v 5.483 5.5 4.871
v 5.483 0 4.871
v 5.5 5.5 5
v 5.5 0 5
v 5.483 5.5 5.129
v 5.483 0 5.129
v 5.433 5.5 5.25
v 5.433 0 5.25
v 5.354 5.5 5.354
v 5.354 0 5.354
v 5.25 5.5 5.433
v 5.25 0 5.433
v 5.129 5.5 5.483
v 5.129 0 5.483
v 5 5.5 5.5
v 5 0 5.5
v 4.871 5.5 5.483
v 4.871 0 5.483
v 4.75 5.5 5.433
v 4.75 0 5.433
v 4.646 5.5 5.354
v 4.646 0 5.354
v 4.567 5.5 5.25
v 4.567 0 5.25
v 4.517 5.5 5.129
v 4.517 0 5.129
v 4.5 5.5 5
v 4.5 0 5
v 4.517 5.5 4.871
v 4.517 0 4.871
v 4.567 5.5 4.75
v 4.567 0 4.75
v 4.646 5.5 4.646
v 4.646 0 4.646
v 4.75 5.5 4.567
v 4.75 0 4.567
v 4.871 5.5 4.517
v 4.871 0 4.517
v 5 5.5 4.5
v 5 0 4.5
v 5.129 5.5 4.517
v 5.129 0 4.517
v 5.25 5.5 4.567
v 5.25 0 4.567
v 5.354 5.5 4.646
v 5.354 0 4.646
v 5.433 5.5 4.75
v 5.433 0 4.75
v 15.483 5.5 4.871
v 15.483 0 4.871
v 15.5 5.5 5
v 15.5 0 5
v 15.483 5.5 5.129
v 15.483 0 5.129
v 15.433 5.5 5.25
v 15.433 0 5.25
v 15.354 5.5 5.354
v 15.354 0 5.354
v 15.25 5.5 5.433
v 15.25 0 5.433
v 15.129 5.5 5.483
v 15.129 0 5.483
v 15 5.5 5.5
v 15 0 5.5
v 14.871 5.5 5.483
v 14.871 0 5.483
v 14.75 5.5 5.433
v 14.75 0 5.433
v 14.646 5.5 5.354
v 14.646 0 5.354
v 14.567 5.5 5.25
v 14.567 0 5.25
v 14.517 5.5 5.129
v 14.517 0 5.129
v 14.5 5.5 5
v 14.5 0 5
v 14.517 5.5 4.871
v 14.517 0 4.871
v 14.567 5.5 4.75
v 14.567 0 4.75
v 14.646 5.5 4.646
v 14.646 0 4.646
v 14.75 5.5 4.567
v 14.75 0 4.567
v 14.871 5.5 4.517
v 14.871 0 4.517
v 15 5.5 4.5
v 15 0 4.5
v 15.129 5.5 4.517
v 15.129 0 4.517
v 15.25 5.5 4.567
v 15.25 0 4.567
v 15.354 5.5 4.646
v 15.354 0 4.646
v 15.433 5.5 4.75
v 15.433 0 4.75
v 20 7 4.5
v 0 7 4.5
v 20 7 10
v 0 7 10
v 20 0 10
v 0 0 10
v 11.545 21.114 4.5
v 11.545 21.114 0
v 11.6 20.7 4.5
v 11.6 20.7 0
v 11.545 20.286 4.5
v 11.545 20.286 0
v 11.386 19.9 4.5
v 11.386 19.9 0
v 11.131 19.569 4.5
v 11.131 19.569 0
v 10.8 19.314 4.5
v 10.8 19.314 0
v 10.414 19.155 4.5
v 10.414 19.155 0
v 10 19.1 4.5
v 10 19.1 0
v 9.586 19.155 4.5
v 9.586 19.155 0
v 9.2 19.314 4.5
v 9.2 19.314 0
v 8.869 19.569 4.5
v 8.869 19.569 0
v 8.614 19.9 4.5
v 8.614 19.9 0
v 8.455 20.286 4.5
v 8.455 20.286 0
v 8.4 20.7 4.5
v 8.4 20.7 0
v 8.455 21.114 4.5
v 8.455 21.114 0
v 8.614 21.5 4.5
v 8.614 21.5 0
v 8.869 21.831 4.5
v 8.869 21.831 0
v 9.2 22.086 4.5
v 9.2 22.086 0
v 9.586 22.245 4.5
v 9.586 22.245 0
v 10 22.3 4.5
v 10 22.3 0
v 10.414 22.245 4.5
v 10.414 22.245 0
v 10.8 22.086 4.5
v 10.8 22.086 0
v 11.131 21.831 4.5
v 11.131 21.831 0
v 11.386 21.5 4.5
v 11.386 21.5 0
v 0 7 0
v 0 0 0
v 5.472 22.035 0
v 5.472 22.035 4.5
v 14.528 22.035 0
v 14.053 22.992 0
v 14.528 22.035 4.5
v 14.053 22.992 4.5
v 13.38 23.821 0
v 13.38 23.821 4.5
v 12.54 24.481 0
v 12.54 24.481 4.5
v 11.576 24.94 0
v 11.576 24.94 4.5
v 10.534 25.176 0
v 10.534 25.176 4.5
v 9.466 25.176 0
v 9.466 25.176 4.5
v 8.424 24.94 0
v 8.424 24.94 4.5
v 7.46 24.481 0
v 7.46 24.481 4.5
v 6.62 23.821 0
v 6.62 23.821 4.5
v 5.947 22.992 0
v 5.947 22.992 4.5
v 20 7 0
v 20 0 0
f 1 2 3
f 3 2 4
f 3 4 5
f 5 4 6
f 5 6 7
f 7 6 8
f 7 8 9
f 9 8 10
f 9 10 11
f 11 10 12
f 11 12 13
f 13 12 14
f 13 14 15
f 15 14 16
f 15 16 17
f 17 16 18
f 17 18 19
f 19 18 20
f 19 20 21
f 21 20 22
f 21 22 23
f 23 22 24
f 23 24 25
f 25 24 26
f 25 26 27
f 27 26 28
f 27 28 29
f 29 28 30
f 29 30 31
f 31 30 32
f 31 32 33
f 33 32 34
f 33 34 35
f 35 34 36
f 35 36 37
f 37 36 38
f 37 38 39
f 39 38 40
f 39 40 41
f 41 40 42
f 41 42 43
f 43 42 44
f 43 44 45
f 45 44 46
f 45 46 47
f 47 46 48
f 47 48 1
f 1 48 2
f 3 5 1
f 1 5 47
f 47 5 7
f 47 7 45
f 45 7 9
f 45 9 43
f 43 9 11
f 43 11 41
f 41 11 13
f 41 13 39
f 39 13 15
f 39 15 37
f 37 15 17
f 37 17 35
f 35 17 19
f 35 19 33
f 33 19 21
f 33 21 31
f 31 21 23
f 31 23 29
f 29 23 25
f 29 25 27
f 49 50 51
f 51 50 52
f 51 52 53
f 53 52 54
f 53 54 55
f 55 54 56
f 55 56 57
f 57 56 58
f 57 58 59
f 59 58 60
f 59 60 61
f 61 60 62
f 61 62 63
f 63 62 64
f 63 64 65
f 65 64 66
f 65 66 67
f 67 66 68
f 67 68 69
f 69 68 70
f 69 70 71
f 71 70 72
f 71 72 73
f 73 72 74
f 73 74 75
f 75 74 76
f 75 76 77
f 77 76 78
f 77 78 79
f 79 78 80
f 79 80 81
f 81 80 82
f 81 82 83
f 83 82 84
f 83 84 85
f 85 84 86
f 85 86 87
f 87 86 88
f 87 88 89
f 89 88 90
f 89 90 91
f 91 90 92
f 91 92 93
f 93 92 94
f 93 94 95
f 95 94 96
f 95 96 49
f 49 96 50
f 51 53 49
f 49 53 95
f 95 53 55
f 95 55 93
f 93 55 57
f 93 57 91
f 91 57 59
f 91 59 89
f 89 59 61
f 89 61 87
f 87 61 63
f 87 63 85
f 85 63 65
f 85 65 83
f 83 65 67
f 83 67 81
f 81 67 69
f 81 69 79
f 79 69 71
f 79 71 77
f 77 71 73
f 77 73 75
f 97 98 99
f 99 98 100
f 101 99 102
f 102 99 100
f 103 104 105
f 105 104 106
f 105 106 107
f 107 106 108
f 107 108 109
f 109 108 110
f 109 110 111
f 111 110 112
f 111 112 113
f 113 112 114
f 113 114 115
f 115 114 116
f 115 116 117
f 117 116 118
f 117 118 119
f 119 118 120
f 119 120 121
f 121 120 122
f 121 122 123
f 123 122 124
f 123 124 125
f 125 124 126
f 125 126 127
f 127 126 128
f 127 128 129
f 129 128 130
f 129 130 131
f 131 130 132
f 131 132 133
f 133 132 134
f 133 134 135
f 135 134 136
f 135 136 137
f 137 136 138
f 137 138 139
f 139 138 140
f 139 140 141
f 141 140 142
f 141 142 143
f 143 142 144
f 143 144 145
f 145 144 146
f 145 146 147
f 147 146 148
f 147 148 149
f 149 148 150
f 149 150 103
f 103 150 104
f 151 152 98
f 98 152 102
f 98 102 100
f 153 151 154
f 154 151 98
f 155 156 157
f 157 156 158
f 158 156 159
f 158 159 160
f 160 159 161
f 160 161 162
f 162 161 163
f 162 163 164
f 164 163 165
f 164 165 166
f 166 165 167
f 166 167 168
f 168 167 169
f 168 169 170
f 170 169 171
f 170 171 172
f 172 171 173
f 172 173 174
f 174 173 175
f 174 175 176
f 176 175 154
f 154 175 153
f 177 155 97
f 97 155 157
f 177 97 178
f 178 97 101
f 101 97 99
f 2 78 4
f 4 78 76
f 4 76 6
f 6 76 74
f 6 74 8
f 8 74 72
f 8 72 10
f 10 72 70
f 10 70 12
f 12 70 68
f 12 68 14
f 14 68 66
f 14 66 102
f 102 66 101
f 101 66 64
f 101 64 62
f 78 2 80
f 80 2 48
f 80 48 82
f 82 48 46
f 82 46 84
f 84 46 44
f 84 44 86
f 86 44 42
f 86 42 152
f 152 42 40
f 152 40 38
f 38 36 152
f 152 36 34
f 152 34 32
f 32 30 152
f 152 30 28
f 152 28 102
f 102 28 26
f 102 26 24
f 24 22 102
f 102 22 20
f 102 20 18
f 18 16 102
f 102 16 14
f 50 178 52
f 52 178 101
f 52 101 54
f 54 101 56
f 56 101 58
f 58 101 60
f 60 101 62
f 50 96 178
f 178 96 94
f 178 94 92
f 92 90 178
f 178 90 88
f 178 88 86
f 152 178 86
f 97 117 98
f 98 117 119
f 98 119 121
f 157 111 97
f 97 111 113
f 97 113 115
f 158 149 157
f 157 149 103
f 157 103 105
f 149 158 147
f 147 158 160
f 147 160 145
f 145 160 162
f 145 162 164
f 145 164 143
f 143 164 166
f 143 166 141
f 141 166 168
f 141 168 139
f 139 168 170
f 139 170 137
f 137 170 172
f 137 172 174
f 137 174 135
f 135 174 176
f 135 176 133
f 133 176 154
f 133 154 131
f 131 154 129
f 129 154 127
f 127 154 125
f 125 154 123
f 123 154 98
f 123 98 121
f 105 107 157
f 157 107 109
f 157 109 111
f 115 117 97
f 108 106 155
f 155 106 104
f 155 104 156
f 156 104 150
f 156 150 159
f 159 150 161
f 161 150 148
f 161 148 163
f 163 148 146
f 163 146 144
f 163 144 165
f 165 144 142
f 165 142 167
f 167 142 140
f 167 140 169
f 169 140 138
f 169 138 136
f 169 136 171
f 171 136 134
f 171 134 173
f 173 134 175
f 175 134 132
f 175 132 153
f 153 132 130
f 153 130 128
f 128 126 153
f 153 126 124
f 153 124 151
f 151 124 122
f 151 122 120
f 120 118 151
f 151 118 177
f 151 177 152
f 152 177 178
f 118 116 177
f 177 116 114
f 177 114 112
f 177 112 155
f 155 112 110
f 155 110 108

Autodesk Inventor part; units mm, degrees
ref_plane "YZ Plane" through (0, 0, 0) normal (1, 0, 0) x (0, 1, 0)
ref_plane "XZ Plane" through (0, 0, 0) normal (0, 1, 0) x (-1, 0, 0)
ref_plane "XY Plane" through (0, 0, 0) normal (0, 0, 1) x (1, 0, 0)
sketch "Sketch1" plane through (0, 0, 0) normal (0, 0, 1) x (1, 0, 0)
  circle A0 centre (10, 20.7) radius 1.6
  line L0 (0, 0) -> (20.0001, 0)
  line L1 (0, 0) -> (0, 7)
  line L2 (20.0001, 0) -> (20.0001, 6.9998)
  line L3 (0, 7) -> (5.4723, 22.0351)
  line L4 (0, 7) -> (16, 7) construction
  line L5 (20.0001, 6.9998) -> (14.5277, 22.0349)
  line L6 (20.0001, 6.9998) -> (36.0001, 6.9998) construction
  arc A1 (14.5277, 22.0349) -> (5.4723, 22.0351) centre (10, 20.3869) ccw
  dimension "d17" = 7
  dimension "d18" = 6.9998
  dimension "d19" = 20.7
  dimension "d23" = 90
  dimension "d24" = 90
  dimension "d25" = 10
  dimension "d26" = 16
  dimension "d27" = 70
  dimension "d28" = 16
  dimension "d29" = 110
  dimension "d30" = 10
sketch "Sketch3" plane through (0, 0, 0) normal (0, 0, 1) x (1, 0, 0)
  point P0 (0, 0)
extrude "Extrusion1" add sketch "Sketch1" along normal blind 4.5
sketch "Sketch4" plane through (0, 0, 4.5) normal (0, 0, 1) x (1, 0, 0)
  line L0 (0, 7) -> (0, 0) projected
  line L1 (20.0001, 0) -> (20.0001, 6.9998) projected
  line L2 (0, 0) -> (20.0001, 0)
  line L3 (20.0001, 0) -> (20.0001, 6.9998)
  line L4 (3.884, 22.9404) -> (-0.0481, 7.0119) projected
  line L5 (20.0001, 6.9998) -> (0, 6.9998)
  line L6 (0, 7) -> (0, 0)
extrude "Extrusion2" add sketch "Sketch4" along normal blind 5.5
sketch "Sketch5" plane through (0, 0, 0) normal (0, -1, 0) x (1, 0, 0)
  circle A0 centre (5, 5) radius 0.5
  circle A1 centre (15, 5) radius 0.5
  point P0 (0, 0)
  dimension "d13" = 1
  dimension "d14" = 1
extrude "Extrusion3" cut sketch "Sketch5" against normal blind 5.5
properties part number "upper_deck_shaft_mount_v2"
